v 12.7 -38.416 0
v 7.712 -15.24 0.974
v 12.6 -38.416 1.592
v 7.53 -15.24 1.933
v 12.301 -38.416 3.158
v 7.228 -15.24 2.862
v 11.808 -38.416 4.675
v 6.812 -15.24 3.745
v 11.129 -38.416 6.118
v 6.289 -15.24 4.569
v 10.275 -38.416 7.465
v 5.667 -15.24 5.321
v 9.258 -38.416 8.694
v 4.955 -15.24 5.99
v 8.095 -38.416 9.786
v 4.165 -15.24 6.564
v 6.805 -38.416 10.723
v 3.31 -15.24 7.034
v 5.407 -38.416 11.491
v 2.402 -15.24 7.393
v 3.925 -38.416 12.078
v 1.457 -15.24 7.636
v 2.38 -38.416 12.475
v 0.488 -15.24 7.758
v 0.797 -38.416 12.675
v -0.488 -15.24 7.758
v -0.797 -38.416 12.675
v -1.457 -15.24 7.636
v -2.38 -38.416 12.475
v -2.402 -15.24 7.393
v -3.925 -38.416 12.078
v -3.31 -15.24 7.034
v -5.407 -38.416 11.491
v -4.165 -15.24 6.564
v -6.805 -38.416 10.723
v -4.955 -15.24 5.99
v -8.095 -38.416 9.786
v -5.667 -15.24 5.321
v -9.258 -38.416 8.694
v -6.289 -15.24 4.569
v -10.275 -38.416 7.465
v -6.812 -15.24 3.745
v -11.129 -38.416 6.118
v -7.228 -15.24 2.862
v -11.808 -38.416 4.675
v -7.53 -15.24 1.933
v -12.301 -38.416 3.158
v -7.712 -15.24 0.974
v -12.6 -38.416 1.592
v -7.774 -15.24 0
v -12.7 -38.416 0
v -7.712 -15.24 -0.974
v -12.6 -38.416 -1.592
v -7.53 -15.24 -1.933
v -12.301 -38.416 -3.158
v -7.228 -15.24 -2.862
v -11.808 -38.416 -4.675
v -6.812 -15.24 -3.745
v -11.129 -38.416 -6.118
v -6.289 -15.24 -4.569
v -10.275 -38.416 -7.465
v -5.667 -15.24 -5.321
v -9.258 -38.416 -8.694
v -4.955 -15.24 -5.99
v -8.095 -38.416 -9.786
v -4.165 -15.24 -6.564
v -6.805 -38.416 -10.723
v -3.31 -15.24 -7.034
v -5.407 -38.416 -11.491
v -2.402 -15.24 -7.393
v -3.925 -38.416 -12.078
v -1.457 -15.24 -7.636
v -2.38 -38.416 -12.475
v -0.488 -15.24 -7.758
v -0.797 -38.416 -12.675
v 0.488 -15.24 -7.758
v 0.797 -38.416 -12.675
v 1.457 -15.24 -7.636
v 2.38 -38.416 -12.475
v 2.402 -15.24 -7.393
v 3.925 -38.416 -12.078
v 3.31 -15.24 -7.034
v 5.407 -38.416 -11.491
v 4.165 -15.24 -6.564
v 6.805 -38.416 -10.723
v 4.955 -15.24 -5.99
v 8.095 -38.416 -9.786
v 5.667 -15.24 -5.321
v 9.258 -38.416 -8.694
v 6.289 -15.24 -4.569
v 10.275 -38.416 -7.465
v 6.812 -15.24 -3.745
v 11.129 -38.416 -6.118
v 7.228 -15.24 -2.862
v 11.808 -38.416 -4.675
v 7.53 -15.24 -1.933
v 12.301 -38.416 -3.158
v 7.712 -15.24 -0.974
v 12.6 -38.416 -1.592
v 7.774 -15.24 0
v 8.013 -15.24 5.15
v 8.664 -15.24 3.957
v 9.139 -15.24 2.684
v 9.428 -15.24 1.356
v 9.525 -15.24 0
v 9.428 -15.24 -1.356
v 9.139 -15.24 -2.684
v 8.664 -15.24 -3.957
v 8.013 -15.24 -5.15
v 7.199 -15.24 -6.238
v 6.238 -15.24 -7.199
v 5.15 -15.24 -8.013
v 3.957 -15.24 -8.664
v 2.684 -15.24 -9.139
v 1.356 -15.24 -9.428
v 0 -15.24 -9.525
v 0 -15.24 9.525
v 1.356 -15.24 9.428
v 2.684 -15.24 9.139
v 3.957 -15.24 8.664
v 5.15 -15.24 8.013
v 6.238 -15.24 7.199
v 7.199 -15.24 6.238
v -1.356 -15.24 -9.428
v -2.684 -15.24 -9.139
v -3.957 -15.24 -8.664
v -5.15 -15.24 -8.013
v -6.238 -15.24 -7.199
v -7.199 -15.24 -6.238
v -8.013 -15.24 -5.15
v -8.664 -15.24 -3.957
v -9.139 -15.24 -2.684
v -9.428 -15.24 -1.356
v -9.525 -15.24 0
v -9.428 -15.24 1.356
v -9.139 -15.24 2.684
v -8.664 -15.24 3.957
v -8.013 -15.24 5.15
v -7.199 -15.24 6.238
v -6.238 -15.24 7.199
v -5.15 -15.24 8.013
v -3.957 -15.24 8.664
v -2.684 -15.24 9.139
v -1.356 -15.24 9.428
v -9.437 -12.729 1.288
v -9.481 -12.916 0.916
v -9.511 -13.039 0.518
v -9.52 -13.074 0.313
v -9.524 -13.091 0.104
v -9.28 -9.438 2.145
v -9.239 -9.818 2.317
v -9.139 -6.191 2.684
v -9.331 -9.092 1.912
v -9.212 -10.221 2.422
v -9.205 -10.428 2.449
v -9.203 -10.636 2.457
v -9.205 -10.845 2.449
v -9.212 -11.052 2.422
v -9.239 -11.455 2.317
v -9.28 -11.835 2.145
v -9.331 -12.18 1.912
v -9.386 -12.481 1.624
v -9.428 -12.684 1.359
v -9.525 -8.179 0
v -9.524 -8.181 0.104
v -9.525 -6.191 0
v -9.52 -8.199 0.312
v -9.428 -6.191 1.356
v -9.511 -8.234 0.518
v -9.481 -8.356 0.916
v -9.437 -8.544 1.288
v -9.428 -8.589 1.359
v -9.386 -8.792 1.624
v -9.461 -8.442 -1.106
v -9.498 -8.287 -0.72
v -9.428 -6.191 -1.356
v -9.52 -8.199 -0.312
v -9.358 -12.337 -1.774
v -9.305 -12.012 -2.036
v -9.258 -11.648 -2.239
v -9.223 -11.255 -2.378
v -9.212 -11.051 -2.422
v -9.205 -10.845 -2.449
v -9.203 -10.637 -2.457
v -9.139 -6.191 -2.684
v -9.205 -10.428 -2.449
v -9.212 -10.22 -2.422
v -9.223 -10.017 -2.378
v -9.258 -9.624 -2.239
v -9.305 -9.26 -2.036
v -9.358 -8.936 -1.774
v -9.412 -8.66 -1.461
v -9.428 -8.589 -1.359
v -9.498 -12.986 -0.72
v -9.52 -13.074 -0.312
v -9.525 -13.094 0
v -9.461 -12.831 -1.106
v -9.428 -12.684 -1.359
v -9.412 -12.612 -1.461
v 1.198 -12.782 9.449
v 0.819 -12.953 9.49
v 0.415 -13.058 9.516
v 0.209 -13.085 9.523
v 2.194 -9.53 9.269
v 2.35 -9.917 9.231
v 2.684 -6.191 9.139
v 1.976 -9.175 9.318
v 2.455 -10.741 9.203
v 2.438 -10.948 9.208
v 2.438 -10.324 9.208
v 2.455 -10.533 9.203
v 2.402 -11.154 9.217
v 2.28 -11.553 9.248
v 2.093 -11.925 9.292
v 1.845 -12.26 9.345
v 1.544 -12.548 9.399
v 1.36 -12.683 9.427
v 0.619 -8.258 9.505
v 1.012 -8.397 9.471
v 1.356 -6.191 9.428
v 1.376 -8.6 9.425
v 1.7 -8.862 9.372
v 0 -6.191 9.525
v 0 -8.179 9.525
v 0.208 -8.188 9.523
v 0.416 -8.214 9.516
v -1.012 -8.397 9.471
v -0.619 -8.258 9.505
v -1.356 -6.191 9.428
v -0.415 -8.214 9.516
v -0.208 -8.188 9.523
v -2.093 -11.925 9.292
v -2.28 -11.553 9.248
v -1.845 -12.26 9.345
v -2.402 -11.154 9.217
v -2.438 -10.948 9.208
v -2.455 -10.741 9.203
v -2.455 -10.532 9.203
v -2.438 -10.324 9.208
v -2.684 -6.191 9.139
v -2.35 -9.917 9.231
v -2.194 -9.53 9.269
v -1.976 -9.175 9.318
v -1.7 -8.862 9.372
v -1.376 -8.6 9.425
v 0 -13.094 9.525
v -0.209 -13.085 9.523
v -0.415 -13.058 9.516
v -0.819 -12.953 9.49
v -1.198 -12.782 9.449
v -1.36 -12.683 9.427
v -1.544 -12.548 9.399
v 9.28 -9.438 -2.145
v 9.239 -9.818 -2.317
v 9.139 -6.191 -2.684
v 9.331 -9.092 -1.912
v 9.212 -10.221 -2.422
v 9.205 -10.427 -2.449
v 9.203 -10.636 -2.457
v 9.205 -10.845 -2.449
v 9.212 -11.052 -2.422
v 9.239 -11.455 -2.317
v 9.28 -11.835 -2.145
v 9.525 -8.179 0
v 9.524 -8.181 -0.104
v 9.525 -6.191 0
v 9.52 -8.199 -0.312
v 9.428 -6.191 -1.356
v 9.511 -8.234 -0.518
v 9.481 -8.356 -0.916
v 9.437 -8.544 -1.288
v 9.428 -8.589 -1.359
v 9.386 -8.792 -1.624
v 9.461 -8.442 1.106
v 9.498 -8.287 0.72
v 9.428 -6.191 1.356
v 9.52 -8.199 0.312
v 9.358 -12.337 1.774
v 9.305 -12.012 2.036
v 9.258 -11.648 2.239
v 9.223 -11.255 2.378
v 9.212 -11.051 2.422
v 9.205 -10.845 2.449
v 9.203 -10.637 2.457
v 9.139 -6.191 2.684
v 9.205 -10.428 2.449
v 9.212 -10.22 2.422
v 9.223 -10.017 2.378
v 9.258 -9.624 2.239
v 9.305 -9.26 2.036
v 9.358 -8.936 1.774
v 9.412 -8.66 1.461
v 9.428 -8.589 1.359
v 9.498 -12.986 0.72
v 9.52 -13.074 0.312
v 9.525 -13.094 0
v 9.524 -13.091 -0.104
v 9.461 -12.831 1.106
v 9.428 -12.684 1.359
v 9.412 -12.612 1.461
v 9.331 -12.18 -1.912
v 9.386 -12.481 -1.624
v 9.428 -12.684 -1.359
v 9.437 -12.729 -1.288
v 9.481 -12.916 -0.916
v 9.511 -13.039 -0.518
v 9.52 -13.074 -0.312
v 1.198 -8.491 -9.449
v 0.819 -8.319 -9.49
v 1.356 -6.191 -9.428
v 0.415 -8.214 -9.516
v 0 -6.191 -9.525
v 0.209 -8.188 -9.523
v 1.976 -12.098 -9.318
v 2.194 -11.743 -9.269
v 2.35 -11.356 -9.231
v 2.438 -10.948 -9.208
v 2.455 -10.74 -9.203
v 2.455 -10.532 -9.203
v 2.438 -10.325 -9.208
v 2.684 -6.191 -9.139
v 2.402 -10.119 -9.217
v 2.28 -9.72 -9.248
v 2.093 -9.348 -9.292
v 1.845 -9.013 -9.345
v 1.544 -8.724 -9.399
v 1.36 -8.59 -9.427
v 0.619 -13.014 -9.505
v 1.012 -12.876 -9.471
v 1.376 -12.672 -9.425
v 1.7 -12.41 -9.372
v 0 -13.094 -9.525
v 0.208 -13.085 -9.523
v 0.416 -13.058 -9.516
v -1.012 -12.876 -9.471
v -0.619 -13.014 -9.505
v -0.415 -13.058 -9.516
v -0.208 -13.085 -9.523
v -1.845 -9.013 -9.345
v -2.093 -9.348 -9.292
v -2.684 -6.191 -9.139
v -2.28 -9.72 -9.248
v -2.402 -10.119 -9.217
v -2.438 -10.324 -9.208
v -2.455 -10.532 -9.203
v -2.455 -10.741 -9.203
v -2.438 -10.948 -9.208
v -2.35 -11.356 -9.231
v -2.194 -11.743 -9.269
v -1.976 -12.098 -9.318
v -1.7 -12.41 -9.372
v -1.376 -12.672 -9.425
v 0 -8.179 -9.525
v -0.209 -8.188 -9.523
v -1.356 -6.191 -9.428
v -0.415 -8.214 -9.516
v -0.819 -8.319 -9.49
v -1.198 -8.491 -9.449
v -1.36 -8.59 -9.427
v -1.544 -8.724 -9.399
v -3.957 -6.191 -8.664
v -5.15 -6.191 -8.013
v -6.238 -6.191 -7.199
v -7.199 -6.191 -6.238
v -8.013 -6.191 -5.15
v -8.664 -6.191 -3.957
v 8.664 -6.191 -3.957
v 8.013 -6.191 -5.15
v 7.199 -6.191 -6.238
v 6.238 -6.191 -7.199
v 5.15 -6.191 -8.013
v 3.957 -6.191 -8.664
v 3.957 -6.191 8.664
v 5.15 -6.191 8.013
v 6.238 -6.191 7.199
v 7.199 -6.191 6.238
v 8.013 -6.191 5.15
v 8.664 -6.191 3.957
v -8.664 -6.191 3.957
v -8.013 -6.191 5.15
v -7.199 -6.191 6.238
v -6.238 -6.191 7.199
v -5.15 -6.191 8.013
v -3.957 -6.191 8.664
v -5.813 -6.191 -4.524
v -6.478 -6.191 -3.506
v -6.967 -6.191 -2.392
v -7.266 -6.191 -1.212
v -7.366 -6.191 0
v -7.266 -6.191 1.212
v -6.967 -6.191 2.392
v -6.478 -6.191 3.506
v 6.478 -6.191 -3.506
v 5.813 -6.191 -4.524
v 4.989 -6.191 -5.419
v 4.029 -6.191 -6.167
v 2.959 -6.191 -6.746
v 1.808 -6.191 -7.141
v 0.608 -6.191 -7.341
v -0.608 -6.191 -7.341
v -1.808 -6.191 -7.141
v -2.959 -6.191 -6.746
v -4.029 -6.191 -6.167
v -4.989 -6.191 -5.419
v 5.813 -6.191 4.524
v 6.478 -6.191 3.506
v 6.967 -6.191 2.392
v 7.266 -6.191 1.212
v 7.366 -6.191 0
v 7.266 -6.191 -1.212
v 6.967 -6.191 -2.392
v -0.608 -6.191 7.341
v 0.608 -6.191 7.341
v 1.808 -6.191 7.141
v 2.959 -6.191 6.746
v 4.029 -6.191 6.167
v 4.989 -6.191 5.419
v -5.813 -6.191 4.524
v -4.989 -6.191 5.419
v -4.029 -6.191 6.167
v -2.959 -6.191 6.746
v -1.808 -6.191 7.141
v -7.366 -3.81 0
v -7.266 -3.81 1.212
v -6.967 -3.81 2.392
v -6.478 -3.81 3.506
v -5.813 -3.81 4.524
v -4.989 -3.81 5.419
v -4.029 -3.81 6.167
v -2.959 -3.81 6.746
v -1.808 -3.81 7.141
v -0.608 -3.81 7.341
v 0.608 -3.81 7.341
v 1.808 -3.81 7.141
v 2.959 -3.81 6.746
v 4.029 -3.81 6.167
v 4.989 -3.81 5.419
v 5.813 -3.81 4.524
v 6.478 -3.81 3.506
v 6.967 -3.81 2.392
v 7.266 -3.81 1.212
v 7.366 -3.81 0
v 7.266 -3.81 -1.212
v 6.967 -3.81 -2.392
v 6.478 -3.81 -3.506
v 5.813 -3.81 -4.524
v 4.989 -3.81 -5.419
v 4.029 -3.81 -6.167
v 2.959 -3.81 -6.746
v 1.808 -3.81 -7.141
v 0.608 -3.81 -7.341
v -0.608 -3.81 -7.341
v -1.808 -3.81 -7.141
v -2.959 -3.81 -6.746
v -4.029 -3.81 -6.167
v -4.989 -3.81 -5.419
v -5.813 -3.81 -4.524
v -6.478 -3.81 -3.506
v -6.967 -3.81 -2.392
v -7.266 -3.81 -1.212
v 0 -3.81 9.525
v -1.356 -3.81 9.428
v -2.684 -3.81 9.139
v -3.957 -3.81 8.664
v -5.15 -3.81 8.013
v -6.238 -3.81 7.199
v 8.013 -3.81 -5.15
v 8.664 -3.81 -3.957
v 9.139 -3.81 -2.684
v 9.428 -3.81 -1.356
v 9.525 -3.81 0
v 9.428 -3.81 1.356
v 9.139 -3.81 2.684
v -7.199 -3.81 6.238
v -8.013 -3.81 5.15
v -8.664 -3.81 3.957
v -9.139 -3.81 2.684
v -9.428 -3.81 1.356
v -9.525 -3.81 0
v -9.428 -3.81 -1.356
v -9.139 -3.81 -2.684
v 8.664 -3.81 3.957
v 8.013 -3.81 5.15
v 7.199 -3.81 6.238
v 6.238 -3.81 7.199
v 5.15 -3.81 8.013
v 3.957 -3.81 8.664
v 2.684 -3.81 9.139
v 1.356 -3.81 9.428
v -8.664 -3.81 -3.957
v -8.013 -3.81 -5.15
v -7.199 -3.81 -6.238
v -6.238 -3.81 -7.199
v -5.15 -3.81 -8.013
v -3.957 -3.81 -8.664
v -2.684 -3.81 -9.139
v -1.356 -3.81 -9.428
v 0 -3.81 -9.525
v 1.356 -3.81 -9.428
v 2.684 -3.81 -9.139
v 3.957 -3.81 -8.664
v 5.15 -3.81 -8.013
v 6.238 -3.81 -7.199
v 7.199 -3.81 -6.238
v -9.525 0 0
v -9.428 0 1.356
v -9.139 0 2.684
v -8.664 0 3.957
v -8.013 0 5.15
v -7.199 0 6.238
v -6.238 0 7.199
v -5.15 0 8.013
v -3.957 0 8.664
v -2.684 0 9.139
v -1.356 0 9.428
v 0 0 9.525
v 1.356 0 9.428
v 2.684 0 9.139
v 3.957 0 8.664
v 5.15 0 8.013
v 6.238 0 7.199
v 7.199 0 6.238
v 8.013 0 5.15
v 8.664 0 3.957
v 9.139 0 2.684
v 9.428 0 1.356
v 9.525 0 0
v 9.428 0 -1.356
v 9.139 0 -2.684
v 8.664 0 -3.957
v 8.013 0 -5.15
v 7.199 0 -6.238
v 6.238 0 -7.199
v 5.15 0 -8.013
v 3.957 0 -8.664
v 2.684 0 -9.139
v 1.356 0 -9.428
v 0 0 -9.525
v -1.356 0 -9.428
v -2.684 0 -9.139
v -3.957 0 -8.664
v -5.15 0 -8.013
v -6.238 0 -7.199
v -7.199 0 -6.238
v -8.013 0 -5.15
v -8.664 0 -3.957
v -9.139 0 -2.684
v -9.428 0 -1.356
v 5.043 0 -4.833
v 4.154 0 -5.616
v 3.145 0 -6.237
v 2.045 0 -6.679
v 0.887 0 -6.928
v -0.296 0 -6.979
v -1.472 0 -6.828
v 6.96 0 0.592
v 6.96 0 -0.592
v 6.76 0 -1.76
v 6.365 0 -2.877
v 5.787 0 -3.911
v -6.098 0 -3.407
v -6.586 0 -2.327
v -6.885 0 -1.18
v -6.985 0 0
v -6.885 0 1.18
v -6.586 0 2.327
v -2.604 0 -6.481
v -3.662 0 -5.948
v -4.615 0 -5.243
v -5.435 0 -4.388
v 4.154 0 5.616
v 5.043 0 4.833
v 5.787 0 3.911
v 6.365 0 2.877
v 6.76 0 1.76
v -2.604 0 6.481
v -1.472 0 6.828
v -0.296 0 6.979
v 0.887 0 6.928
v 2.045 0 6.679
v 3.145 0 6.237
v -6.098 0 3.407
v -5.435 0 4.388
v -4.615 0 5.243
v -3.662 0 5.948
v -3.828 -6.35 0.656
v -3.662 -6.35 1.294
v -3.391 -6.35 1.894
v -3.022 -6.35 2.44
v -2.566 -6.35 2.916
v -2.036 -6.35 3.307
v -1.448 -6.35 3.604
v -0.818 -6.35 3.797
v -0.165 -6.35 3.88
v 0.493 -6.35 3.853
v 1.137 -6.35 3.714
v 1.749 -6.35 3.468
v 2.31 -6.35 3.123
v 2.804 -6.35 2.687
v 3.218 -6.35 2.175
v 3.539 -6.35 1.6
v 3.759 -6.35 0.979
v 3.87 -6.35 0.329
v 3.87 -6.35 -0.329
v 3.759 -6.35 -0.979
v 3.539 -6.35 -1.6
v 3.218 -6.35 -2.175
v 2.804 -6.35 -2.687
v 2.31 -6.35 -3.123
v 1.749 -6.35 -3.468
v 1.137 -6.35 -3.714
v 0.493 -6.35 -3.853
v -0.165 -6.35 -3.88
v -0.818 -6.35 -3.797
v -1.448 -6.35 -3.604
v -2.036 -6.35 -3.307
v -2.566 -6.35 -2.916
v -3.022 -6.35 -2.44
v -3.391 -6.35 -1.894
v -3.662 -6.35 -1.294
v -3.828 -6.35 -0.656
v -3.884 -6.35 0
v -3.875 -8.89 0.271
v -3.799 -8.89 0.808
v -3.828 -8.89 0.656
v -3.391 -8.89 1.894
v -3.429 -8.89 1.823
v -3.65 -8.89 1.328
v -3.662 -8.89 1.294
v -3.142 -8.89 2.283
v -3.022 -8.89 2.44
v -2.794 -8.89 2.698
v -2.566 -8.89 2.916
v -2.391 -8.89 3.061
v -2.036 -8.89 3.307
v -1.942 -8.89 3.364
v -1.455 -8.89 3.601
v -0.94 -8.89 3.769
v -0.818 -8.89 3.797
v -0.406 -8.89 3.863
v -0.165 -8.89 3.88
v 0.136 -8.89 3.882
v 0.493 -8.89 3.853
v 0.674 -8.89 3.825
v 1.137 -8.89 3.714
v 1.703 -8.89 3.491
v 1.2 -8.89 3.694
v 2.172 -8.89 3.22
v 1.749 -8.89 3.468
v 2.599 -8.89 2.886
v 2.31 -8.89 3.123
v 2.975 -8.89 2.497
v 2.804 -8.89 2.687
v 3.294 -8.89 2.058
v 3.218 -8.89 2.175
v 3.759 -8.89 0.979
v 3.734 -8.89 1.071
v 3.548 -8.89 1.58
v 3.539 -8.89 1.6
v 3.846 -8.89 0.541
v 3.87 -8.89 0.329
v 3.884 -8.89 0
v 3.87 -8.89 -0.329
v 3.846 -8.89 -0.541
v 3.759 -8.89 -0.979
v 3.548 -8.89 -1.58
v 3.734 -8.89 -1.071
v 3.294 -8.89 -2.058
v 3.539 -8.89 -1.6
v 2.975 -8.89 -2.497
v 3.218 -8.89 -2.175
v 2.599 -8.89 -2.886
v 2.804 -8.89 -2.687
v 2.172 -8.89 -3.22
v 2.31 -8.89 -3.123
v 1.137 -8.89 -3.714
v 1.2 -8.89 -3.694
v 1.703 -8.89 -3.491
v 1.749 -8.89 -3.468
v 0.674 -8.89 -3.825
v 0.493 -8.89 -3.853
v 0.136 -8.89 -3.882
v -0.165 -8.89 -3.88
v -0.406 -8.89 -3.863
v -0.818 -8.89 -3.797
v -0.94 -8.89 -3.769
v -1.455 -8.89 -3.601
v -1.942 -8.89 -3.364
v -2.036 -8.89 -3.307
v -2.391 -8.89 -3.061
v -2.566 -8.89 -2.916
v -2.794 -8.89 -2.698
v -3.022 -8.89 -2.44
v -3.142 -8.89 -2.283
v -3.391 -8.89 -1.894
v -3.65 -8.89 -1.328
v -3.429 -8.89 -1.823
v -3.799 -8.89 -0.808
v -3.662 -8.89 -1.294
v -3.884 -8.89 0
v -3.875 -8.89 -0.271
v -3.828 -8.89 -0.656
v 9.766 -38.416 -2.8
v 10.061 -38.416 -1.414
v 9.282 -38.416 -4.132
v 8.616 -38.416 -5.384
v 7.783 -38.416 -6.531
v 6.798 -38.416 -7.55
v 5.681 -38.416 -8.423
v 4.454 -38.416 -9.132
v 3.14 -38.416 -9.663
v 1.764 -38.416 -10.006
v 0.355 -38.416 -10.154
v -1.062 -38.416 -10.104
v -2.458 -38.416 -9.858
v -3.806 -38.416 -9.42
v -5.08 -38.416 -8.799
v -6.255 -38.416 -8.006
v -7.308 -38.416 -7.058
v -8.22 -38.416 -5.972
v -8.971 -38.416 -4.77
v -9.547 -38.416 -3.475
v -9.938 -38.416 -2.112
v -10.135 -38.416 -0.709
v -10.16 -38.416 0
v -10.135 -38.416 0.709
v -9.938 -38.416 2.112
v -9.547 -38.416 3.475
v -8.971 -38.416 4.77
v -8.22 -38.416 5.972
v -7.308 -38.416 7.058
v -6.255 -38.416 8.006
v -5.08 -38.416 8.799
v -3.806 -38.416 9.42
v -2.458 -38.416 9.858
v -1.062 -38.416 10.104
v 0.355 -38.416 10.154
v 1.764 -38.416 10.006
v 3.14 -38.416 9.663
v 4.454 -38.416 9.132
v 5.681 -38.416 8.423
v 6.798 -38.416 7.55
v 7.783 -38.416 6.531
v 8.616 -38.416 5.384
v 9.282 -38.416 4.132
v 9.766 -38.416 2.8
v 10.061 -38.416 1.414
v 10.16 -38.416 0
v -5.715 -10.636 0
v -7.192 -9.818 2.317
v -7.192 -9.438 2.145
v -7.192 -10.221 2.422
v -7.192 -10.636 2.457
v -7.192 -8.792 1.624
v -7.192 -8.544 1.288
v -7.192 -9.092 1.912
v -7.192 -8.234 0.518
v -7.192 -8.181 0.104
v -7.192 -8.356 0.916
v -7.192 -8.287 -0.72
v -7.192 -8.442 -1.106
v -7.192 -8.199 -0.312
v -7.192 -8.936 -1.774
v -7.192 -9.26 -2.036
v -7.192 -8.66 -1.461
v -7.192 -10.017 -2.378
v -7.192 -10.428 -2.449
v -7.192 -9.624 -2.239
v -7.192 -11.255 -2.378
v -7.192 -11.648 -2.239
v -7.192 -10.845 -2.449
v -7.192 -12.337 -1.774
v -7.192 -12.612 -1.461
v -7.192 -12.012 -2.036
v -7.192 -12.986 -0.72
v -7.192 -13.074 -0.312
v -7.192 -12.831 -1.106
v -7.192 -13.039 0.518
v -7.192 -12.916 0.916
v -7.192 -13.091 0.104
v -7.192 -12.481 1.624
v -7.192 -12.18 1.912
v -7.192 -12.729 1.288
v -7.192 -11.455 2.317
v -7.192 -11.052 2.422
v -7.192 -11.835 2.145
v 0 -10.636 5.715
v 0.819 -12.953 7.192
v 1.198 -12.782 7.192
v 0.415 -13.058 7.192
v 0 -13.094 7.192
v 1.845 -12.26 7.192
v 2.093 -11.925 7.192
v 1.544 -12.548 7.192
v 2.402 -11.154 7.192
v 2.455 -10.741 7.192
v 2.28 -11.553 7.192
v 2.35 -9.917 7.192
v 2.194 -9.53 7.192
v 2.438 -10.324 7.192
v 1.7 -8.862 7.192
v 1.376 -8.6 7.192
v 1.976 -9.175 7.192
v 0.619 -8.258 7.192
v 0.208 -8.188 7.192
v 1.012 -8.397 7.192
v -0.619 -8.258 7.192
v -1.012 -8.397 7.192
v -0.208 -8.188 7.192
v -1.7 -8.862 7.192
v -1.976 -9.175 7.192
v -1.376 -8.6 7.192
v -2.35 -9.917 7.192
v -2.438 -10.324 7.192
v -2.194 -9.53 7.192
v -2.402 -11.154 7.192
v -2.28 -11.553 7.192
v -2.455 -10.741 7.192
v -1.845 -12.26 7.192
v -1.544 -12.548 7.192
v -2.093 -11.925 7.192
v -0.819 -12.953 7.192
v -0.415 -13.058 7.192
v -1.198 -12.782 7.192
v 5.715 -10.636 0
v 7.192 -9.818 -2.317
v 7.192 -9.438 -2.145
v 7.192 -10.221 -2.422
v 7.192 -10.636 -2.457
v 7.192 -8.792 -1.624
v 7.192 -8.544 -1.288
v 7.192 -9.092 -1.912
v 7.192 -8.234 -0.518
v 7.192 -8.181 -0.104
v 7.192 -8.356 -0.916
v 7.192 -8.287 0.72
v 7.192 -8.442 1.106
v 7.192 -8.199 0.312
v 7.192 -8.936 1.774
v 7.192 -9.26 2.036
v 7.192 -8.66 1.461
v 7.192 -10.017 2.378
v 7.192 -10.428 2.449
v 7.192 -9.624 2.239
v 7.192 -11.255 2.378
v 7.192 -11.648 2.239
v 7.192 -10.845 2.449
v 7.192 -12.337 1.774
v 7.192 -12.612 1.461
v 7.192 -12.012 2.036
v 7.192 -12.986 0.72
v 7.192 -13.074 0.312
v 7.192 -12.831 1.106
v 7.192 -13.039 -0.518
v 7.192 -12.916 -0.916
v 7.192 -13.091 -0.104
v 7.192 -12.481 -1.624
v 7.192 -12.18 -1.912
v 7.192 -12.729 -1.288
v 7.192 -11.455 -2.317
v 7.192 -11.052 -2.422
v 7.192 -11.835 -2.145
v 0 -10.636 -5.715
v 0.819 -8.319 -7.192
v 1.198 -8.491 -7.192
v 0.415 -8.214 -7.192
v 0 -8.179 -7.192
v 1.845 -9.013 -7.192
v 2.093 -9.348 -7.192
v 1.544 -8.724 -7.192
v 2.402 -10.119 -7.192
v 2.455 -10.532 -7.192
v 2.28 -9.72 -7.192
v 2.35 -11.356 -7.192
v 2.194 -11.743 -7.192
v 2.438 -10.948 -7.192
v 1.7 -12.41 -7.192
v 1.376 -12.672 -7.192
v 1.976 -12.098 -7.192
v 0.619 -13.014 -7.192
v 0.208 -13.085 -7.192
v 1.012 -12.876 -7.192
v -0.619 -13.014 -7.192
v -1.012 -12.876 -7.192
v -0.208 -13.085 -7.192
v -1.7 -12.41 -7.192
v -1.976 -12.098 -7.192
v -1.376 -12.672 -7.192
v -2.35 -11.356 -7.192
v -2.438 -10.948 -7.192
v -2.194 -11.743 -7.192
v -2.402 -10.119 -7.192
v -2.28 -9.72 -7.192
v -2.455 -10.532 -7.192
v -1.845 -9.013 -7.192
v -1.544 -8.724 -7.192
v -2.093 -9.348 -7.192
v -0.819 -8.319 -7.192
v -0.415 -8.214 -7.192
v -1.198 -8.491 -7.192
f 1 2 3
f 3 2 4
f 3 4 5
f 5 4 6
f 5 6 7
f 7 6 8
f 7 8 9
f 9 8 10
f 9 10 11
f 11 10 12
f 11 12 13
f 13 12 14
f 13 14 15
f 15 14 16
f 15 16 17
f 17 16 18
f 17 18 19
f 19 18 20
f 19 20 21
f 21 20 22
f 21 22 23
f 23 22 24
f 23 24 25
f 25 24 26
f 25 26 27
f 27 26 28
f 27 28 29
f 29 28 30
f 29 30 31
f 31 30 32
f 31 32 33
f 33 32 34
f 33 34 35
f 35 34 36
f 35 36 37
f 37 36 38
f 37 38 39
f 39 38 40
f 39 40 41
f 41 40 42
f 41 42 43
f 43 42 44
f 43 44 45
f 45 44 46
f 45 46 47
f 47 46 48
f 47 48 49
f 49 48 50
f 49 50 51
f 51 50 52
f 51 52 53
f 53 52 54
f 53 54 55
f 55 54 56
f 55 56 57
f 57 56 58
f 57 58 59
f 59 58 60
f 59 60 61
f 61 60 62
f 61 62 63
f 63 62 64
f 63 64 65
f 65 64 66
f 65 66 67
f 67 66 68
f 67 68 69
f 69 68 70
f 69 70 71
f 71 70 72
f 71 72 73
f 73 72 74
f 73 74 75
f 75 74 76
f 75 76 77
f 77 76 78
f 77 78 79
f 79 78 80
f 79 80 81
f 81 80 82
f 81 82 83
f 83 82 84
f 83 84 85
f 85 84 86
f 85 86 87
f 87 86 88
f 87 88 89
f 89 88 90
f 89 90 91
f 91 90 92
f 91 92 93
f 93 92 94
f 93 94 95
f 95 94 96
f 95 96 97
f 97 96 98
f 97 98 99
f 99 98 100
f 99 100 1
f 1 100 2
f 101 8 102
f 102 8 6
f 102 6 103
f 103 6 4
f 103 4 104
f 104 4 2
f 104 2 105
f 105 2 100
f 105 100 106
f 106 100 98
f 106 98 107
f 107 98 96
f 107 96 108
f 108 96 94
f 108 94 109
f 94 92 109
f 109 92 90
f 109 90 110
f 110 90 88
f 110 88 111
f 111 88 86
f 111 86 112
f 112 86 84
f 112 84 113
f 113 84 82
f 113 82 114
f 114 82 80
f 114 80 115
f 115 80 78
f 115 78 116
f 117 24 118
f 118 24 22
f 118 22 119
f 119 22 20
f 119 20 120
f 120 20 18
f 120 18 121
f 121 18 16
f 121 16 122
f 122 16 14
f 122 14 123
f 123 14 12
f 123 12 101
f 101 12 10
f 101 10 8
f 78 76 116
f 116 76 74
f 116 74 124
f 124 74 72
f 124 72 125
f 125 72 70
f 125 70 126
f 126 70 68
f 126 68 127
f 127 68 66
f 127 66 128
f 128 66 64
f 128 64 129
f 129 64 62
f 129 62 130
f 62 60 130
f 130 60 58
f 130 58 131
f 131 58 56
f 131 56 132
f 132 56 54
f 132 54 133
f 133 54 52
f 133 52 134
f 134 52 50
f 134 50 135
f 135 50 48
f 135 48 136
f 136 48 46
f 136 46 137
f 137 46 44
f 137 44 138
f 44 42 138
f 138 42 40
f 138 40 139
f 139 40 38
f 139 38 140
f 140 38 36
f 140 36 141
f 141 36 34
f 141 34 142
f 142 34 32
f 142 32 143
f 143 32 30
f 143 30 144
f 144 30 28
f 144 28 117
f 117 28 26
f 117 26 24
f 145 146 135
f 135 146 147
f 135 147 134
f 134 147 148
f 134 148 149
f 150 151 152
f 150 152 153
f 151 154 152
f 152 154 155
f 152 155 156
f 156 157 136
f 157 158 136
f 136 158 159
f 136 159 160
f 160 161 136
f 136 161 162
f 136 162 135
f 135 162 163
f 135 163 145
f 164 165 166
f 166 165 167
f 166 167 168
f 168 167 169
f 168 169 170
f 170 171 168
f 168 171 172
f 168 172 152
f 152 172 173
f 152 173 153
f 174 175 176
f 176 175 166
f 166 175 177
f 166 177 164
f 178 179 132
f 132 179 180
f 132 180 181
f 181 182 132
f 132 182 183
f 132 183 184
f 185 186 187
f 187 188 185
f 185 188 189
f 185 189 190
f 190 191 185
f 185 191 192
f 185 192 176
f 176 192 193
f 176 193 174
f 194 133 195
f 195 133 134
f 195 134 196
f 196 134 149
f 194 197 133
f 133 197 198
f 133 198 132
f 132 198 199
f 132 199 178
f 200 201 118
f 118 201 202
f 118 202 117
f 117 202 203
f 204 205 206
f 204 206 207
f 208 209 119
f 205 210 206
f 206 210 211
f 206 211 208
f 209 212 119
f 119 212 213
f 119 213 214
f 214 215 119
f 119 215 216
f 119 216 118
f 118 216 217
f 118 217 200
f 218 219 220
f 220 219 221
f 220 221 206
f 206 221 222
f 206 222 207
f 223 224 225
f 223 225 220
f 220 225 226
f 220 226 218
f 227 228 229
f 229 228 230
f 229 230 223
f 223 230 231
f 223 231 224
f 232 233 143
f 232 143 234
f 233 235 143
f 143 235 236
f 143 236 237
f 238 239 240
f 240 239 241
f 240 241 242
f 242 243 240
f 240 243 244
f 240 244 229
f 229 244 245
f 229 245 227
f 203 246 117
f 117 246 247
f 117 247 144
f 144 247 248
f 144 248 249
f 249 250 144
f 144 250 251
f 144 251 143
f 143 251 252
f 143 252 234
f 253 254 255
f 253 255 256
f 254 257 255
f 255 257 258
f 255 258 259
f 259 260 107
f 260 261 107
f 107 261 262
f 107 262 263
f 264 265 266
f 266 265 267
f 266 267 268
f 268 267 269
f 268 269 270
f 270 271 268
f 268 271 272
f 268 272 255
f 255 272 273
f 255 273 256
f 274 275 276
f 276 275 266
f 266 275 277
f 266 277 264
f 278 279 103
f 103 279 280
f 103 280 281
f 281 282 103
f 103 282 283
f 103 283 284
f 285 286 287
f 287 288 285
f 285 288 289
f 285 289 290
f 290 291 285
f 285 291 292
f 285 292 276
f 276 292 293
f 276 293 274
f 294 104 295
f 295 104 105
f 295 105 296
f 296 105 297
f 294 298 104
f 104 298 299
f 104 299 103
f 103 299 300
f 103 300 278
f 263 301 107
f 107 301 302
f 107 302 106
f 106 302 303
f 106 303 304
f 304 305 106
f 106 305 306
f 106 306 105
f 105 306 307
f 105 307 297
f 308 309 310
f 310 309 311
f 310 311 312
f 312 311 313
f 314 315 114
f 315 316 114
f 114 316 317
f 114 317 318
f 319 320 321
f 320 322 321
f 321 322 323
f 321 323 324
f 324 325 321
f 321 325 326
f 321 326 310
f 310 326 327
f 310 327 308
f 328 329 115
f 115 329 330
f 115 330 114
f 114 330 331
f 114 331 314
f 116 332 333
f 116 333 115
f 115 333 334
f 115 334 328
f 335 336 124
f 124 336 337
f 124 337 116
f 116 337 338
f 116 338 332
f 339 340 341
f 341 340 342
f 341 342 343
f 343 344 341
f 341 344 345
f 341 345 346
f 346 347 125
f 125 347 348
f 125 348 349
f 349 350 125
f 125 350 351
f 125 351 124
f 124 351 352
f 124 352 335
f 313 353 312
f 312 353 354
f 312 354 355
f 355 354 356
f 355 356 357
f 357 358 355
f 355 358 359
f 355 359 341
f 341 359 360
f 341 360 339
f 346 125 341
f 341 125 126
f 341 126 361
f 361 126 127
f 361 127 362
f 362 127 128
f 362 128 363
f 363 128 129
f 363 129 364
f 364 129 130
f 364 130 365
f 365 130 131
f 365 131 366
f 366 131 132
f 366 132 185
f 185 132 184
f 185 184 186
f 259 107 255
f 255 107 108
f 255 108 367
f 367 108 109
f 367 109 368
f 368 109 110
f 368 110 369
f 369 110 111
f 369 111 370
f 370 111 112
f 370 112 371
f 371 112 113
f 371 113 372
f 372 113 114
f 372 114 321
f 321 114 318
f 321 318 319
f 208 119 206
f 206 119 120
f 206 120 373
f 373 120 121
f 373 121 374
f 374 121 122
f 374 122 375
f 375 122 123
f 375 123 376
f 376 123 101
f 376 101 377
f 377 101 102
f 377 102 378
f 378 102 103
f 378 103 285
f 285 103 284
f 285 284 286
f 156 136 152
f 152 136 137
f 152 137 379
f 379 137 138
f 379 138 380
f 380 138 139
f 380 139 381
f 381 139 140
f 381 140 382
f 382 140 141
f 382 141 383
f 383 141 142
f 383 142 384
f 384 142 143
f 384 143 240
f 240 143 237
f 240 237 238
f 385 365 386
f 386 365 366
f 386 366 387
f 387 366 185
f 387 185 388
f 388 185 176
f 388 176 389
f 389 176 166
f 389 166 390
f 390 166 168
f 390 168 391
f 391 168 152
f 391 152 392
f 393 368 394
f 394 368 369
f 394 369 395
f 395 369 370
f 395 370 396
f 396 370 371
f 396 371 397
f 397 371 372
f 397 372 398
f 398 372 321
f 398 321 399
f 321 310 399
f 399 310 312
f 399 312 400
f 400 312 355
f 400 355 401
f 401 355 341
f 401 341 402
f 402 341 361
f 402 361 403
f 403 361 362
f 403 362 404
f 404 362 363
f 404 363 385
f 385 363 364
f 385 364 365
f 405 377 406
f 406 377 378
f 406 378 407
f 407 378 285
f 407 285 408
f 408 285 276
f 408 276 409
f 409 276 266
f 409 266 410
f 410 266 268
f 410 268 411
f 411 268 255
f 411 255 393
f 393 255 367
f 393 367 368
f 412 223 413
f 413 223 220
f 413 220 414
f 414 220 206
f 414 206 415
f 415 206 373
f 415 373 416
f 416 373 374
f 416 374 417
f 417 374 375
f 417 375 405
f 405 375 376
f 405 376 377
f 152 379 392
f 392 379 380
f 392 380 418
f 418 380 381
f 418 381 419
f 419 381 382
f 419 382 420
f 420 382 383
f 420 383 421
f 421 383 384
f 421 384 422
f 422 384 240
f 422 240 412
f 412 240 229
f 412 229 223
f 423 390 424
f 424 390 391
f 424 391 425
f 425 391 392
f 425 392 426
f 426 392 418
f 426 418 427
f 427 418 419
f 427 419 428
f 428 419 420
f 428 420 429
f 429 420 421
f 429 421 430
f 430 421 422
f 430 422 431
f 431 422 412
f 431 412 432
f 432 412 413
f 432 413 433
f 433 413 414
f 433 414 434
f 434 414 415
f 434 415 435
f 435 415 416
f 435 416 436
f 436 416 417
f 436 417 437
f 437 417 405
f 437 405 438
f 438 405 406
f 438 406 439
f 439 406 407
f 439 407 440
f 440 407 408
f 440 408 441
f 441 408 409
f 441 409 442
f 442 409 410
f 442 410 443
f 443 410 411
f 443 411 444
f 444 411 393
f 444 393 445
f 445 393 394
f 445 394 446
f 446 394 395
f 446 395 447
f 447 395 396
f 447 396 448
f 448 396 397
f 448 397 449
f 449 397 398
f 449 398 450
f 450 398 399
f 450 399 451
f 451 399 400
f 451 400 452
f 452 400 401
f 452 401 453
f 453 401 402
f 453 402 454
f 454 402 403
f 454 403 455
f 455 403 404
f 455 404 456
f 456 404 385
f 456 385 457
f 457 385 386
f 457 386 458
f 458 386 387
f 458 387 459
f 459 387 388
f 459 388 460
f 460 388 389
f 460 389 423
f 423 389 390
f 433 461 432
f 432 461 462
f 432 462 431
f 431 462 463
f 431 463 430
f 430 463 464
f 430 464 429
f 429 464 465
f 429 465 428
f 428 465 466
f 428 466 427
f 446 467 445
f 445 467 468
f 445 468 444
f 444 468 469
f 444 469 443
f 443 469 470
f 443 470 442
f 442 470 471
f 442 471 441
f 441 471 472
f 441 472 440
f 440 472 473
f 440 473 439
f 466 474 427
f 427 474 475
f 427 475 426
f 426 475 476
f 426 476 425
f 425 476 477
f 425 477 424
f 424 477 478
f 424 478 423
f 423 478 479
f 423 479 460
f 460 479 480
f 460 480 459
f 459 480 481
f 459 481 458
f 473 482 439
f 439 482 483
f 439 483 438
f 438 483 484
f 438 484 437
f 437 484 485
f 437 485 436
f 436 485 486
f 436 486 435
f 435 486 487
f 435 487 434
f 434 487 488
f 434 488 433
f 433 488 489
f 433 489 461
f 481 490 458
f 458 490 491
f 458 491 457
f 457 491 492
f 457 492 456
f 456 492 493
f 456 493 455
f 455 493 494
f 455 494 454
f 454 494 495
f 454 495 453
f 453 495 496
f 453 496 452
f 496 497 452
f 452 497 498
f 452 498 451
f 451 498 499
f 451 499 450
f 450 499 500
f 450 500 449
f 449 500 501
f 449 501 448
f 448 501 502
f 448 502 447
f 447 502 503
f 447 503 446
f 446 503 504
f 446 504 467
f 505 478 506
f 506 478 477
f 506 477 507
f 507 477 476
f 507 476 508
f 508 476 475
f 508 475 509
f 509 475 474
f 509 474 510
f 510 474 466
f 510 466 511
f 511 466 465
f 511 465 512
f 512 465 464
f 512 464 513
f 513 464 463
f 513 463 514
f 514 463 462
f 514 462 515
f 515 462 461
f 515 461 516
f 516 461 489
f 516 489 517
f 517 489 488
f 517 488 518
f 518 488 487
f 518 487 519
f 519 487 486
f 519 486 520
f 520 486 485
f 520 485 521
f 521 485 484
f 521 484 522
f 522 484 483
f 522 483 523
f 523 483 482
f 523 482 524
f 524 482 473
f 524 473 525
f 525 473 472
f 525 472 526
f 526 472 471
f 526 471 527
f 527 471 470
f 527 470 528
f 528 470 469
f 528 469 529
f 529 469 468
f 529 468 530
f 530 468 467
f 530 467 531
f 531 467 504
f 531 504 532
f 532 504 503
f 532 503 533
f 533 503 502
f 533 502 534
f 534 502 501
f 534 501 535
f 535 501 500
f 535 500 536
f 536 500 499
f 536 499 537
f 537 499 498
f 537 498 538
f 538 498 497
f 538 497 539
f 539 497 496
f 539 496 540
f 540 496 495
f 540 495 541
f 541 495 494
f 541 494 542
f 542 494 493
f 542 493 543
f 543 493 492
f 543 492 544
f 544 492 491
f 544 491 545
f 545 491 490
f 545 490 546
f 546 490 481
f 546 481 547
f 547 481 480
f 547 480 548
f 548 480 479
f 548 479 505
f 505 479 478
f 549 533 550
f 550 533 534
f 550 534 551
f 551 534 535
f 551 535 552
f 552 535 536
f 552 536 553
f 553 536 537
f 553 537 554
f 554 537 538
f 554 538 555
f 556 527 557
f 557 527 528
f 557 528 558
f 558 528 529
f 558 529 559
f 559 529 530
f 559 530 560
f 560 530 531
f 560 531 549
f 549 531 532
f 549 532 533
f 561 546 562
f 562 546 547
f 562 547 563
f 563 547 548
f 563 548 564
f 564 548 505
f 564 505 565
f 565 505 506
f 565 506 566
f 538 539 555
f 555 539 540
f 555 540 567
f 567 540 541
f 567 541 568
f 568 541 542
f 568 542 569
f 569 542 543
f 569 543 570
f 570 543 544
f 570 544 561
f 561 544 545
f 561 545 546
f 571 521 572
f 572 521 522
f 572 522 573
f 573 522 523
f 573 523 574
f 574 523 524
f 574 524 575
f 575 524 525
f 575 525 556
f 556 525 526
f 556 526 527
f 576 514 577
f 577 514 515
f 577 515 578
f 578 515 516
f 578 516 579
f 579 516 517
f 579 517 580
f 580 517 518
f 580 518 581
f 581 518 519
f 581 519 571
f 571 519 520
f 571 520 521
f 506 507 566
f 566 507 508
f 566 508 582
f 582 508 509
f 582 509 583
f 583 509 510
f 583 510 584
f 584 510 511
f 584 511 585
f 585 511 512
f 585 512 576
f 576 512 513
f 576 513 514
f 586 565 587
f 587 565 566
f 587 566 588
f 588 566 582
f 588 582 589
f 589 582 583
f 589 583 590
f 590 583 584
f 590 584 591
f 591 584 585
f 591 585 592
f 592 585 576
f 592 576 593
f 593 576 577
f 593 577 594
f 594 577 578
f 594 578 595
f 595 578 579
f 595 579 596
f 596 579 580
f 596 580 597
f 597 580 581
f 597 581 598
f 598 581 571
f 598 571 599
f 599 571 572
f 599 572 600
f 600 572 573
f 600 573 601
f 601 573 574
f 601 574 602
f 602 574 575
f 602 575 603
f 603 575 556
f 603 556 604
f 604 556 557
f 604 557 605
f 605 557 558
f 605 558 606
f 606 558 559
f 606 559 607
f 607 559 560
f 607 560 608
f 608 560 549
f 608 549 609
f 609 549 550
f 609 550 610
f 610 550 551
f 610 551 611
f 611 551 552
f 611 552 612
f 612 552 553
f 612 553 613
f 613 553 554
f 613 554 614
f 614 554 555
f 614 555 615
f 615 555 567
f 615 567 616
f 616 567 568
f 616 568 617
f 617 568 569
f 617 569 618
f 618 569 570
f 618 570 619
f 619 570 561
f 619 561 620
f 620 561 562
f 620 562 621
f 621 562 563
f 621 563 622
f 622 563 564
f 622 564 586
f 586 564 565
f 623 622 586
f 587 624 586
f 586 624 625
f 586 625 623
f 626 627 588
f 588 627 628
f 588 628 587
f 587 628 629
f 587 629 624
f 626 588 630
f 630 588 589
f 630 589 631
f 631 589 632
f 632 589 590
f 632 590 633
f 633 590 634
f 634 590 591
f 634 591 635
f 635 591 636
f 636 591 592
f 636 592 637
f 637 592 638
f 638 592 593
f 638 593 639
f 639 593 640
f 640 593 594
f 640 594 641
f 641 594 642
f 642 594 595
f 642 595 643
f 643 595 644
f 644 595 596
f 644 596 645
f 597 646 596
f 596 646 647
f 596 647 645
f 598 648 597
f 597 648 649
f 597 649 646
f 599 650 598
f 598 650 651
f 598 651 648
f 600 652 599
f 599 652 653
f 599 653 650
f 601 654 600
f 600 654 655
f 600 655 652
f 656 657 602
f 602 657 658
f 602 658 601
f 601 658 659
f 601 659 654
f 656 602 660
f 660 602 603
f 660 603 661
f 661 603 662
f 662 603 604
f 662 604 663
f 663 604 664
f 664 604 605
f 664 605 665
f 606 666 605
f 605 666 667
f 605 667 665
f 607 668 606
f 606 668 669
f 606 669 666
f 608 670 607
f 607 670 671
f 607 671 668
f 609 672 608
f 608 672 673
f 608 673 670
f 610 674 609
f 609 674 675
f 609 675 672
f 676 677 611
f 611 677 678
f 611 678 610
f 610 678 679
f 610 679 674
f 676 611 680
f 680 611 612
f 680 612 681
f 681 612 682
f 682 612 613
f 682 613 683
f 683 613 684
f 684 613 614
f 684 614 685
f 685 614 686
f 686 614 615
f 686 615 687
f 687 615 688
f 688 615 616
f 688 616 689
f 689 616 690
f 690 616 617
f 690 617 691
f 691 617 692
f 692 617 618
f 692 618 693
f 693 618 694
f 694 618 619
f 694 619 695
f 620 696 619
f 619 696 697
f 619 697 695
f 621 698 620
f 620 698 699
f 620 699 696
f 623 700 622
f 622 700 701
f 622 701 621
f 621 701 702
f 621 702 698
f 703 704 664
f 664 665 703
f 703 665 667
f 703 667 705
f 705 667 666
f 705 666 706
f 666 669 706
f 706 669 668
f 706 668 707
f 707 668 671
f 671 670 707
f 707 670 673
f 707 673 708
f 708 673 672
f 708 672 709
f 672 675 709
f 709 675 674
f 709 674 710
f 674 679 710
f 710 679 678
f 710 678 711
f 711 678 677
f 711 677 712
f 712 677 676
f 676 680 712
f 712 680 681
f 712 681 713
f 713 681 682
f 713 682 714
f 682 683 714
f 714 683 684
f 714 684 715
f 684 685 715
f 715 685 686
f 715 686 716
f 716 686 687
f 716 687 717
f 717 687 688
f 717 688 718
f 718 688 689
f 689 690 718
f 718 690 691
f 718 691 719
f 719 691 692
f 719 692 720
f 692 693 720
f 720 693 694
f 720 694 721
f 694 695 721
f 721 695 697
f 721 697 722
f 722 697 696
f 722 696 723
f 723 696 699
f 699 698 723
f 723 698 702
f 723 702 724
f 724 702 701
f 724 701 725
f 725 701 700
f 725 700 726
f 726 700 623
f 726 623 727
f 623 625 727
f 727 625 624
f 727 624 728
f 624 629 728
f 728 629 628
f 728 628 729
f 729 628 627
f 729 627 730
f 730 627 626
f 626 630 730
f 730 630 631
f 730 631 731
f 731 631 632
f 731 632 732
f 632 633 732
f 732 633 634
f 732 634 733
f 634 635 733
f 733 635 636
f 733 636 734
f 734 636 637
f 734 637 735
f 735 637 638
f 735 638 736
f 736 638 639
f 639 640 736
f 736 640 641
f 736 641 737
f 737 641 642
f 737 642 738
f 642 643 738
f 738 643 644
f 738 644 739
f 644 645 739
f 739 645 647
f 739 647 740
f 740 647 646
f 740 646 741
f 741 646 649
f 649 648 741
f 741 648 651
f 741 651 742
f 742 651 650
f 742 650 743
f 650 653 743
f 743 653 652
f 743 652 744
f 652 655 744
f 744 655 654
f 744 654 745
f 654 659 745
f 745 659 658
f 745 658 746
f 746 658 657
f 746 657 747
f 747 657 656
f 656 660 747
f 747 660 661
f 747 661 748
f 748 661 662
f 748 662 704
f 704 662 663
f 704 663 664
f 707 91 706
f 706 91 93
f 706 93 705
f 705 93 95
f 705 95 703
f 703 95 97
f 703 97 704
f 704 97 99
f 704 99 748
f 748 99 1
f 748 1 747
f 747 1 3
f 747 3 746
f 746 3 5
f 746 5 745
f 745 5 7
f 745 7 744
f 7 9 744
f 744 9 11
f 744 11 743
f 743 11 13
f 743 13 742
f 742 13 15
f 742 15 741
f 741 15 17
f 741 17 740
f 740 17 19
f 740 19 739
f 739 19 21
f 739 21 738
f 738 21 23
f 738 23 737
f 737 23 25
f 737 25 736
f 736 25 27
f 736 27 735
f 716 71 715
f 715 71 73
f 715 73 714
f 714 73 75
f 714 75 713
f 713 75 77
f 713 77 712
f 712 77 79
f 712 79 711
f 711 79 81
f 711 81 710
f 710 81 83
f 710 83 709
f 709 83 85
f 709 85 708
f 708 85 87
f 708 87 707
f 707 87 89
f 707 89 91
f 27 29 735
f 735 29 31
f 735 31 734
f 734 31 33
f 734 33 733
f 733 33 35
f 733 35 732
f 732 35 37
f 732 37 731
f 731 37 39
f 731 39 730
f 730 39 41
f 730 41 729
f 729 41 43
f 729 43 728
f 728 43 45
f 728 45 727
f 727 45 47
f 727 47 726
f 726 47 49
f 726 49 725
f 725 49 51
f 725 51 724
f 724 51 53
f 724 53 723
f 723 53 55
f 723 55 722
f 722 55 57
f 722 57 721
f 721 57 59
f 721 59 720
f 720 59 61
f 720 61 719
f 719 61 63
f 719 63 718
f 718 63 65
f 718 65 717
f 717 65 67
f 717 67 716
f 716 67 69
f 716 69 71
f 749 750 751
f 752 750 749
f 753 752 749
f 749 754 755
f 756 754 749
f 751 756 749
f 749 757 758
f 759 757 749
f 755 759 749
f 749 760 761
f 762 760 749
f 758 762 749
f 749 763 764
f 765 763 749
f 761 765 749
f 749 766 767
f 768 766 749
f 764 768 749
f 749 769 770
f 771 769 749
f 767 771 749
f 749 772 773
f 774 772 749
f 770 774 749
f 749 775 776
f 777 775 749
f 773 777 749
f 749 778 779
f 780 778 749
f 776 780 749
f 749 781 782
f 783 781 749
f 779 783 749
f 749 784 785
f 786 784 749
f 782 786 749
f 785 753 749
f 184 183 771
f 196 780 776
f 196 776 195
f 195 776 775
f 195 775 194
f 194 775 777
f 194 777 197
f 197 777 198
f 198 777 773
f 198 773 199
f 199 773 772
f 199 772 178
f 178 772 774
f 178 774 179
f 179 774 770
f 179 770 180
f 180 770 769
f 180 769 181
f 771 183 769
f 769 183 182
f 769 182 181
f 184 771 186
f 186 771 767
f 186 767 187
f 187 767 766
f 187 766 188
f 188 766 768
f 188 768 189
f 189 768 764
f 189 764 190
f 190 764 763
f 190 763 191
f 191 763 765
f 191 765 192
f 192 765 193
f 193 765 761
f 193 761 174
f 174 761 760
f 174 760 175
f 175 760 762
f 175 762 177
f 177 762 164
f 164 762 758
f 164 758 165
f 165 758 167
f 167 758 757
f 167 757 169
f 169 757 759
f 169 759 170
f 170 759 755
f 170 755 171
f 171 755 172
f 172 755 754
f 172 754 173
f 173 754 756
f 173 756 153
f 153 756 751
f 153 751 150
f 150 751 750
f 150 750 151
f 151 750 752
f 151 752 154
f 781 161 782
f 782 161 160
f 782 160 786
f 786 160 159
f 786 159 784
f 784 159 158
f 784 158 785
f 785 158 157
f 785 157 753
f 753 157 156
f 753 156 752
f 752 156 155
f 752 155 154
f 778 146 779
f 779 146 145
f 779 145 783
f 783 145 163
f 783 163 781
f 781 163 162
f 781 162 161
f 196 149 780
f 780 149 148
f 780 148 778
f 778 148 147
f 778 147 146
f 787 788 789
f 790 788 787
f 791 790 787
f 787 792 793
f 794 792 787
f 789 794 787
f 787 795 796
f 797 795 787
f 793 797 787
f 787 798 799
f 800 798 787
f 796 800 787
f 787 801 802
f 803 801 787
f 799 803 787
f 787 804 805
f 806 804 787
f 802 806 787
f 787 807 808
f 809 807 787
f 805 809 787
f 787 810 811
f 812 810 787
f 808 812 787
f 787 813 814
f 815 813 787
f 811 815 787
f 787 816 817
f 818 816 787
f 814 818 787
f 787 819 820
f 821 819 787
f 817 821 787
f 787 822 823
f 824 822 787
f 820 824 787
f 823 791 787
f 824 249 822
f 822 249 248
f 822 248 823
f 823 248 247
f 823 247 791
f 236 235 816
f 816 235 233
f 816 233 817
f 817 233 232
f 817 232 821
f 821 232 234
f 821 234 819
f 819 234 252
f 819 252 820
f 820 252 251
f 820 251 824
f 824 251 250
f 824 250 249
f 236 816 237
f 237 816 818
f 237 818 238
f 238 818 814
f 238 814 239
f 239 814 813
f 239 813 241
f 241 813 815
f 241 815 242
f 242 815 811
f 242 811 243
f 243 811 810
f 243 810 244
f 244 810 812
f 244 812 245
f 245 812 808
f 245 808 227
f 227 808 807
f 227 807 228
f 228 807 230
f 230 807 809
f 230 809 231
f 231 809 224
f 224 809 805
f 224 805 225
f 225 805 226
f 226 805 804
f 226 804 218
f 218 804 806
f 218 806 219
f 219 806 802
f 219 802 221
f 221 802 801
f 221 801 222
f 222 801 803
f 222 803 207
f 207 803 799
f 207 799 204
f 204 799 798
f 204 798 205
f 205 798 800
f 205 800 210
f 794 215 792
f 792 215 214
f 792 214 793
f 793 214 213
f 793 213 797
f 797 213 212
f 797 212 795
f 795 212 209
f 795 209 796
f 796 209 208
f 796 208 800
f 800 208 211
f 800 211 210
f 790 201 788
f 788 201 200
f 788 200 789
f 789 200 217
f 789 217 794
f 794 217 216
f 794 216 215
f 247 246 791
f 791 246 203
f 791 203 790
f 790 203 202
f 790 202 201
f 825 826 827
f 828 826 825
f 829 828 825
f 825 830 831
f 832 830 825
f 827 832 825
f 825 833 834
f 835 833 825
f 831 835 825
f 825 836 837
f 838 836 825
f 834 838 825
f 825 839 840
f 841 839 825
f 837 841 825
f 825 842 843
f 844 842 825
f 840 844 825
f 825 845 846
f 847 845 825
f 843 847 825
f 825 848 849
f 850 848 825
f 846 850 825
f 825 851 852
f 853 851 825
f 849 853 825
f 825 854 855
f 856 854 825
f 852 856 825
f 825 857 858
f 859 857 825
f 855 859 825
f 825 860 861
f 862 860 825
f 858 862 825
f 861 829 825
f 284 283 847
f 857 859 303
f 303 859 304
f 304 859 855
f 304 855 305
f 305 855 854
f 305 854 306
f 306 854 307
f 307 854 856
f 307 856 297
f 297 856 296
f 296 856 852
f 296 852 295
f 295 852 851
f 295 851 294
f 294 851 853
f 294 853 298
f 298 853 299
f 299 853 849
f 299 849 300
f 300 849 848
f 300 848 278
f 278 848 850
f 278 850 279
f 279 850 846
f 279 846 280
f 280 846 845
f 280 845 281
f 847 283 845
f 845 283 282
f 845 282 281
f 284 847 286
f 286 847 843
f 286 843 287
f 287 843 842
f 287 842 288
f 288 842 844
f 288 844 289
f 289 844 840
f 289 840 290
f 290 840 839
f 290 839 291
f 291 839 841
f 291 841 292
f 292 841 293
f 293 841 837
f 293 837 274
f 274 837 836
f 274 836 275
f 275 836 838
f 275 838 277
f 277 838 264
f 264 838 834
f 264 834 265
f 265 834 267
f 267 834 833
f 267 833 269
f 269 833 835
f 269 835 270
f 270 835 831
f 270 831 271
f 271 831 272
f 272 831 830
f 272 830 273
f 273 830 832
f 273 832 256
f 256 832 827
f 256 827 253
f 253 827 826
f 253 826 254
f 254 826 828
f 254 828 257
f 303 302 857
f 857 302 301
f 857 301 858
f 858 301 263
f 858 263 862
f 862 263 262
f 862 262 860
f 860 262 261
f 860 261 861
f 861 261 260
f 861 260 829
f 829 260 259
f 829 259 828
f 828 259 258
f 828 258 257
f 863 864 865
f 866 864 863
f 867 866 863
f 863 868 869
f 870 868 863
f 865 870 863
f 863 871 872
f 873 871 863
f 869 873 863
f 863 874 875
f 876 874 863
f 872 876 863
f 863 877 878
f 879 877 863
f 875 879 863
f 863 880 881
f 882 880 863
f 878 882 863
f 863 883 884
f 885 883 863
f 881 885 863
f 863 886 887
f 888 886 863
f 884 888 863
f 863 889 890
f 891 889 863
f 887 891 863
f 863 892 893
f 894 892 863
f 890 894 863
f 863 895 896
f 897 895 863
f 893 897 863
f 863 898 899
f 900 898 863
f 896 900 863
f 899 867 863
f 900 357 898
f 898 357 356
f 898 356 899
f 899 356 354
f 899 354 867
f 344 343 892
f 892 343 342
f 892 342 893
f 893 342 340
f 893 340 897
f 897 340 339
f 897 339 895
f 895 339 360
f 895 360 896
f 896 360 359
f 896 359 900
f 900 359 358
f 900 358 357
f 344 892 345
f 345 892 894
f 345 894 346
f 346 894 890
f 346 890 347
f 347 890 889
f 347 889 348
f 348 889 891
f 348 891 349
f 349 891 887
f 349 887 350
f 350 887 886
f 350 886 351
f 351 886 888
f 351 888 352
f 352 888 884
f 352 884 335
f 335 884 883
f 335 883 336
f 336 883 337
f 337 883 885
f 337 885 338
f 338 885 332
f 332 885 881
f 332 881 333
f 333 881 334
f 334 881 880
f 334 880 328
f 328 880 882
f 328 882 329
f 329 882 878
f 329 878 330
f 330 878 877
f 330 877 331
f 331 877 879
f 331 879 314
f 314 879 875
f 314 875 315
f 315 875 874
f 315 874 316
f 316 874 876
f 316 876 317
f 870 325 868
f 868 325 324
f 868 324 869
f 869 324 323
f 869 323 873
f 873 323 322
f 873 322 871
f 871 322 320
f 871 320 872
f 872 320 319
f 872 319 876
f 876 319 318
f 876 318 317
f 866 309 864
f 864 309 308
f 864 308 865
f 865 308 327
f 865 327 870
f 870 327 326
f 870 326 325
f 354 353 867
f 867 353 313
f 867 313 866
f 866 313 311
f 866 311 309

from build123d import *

# Parameters (mm, degrees)
CIRPATTERN1_COUNT = 4


with BuildPart() as part:
    # Sketch1 → Body (revolve)
    with BuildSketch(Plane.XY):
        Polygon((-12.7, -38.416258567), (-10.16, -38.416258567), (-3.884, -8.89), (-3.884, -6.35), (-6.985, 0), (-9.525, 0), (-9.525, -3.81), (-7.366, -3.81), (-7.366, -6.19125), (-9.525, -6.19125), (-9.525, -15.24), (-7.773734167, -15.24), align=None)
    revolve(axis=Axis((0, 0, 0), (0, -1, 0)))

    # Sketch4 → SetScrew (revolve, cut)
    with BuildSketch(Plane(origin=(-9.525, -10.63625, 0), x_dir=(0, 0, 1), z_dir=(0, 1, 0))):
        Polygon((0, 0), (0, 3.81), (2.45745, 2.333415072), (2.45745, 0), align=None)
    setscrew = revolve(axis=Axis((-15.875, -10.63625, 0), (1, 0, 0)), mode=Mode.SUBTRACT)

    # CirPattern1: SetScrew ×4 about axis
    cirpattern1_axis = Axis((0, 0, 0), (0, 1, 0))
    for i in range(1, CIRPATTERN1_COUNT):
        add(setscrew.rotate(cirpattern1_axis, i * 360 / CIRPATTERN1_COUNT), mode=Mode.SUBTRACT)


solid = part.part
